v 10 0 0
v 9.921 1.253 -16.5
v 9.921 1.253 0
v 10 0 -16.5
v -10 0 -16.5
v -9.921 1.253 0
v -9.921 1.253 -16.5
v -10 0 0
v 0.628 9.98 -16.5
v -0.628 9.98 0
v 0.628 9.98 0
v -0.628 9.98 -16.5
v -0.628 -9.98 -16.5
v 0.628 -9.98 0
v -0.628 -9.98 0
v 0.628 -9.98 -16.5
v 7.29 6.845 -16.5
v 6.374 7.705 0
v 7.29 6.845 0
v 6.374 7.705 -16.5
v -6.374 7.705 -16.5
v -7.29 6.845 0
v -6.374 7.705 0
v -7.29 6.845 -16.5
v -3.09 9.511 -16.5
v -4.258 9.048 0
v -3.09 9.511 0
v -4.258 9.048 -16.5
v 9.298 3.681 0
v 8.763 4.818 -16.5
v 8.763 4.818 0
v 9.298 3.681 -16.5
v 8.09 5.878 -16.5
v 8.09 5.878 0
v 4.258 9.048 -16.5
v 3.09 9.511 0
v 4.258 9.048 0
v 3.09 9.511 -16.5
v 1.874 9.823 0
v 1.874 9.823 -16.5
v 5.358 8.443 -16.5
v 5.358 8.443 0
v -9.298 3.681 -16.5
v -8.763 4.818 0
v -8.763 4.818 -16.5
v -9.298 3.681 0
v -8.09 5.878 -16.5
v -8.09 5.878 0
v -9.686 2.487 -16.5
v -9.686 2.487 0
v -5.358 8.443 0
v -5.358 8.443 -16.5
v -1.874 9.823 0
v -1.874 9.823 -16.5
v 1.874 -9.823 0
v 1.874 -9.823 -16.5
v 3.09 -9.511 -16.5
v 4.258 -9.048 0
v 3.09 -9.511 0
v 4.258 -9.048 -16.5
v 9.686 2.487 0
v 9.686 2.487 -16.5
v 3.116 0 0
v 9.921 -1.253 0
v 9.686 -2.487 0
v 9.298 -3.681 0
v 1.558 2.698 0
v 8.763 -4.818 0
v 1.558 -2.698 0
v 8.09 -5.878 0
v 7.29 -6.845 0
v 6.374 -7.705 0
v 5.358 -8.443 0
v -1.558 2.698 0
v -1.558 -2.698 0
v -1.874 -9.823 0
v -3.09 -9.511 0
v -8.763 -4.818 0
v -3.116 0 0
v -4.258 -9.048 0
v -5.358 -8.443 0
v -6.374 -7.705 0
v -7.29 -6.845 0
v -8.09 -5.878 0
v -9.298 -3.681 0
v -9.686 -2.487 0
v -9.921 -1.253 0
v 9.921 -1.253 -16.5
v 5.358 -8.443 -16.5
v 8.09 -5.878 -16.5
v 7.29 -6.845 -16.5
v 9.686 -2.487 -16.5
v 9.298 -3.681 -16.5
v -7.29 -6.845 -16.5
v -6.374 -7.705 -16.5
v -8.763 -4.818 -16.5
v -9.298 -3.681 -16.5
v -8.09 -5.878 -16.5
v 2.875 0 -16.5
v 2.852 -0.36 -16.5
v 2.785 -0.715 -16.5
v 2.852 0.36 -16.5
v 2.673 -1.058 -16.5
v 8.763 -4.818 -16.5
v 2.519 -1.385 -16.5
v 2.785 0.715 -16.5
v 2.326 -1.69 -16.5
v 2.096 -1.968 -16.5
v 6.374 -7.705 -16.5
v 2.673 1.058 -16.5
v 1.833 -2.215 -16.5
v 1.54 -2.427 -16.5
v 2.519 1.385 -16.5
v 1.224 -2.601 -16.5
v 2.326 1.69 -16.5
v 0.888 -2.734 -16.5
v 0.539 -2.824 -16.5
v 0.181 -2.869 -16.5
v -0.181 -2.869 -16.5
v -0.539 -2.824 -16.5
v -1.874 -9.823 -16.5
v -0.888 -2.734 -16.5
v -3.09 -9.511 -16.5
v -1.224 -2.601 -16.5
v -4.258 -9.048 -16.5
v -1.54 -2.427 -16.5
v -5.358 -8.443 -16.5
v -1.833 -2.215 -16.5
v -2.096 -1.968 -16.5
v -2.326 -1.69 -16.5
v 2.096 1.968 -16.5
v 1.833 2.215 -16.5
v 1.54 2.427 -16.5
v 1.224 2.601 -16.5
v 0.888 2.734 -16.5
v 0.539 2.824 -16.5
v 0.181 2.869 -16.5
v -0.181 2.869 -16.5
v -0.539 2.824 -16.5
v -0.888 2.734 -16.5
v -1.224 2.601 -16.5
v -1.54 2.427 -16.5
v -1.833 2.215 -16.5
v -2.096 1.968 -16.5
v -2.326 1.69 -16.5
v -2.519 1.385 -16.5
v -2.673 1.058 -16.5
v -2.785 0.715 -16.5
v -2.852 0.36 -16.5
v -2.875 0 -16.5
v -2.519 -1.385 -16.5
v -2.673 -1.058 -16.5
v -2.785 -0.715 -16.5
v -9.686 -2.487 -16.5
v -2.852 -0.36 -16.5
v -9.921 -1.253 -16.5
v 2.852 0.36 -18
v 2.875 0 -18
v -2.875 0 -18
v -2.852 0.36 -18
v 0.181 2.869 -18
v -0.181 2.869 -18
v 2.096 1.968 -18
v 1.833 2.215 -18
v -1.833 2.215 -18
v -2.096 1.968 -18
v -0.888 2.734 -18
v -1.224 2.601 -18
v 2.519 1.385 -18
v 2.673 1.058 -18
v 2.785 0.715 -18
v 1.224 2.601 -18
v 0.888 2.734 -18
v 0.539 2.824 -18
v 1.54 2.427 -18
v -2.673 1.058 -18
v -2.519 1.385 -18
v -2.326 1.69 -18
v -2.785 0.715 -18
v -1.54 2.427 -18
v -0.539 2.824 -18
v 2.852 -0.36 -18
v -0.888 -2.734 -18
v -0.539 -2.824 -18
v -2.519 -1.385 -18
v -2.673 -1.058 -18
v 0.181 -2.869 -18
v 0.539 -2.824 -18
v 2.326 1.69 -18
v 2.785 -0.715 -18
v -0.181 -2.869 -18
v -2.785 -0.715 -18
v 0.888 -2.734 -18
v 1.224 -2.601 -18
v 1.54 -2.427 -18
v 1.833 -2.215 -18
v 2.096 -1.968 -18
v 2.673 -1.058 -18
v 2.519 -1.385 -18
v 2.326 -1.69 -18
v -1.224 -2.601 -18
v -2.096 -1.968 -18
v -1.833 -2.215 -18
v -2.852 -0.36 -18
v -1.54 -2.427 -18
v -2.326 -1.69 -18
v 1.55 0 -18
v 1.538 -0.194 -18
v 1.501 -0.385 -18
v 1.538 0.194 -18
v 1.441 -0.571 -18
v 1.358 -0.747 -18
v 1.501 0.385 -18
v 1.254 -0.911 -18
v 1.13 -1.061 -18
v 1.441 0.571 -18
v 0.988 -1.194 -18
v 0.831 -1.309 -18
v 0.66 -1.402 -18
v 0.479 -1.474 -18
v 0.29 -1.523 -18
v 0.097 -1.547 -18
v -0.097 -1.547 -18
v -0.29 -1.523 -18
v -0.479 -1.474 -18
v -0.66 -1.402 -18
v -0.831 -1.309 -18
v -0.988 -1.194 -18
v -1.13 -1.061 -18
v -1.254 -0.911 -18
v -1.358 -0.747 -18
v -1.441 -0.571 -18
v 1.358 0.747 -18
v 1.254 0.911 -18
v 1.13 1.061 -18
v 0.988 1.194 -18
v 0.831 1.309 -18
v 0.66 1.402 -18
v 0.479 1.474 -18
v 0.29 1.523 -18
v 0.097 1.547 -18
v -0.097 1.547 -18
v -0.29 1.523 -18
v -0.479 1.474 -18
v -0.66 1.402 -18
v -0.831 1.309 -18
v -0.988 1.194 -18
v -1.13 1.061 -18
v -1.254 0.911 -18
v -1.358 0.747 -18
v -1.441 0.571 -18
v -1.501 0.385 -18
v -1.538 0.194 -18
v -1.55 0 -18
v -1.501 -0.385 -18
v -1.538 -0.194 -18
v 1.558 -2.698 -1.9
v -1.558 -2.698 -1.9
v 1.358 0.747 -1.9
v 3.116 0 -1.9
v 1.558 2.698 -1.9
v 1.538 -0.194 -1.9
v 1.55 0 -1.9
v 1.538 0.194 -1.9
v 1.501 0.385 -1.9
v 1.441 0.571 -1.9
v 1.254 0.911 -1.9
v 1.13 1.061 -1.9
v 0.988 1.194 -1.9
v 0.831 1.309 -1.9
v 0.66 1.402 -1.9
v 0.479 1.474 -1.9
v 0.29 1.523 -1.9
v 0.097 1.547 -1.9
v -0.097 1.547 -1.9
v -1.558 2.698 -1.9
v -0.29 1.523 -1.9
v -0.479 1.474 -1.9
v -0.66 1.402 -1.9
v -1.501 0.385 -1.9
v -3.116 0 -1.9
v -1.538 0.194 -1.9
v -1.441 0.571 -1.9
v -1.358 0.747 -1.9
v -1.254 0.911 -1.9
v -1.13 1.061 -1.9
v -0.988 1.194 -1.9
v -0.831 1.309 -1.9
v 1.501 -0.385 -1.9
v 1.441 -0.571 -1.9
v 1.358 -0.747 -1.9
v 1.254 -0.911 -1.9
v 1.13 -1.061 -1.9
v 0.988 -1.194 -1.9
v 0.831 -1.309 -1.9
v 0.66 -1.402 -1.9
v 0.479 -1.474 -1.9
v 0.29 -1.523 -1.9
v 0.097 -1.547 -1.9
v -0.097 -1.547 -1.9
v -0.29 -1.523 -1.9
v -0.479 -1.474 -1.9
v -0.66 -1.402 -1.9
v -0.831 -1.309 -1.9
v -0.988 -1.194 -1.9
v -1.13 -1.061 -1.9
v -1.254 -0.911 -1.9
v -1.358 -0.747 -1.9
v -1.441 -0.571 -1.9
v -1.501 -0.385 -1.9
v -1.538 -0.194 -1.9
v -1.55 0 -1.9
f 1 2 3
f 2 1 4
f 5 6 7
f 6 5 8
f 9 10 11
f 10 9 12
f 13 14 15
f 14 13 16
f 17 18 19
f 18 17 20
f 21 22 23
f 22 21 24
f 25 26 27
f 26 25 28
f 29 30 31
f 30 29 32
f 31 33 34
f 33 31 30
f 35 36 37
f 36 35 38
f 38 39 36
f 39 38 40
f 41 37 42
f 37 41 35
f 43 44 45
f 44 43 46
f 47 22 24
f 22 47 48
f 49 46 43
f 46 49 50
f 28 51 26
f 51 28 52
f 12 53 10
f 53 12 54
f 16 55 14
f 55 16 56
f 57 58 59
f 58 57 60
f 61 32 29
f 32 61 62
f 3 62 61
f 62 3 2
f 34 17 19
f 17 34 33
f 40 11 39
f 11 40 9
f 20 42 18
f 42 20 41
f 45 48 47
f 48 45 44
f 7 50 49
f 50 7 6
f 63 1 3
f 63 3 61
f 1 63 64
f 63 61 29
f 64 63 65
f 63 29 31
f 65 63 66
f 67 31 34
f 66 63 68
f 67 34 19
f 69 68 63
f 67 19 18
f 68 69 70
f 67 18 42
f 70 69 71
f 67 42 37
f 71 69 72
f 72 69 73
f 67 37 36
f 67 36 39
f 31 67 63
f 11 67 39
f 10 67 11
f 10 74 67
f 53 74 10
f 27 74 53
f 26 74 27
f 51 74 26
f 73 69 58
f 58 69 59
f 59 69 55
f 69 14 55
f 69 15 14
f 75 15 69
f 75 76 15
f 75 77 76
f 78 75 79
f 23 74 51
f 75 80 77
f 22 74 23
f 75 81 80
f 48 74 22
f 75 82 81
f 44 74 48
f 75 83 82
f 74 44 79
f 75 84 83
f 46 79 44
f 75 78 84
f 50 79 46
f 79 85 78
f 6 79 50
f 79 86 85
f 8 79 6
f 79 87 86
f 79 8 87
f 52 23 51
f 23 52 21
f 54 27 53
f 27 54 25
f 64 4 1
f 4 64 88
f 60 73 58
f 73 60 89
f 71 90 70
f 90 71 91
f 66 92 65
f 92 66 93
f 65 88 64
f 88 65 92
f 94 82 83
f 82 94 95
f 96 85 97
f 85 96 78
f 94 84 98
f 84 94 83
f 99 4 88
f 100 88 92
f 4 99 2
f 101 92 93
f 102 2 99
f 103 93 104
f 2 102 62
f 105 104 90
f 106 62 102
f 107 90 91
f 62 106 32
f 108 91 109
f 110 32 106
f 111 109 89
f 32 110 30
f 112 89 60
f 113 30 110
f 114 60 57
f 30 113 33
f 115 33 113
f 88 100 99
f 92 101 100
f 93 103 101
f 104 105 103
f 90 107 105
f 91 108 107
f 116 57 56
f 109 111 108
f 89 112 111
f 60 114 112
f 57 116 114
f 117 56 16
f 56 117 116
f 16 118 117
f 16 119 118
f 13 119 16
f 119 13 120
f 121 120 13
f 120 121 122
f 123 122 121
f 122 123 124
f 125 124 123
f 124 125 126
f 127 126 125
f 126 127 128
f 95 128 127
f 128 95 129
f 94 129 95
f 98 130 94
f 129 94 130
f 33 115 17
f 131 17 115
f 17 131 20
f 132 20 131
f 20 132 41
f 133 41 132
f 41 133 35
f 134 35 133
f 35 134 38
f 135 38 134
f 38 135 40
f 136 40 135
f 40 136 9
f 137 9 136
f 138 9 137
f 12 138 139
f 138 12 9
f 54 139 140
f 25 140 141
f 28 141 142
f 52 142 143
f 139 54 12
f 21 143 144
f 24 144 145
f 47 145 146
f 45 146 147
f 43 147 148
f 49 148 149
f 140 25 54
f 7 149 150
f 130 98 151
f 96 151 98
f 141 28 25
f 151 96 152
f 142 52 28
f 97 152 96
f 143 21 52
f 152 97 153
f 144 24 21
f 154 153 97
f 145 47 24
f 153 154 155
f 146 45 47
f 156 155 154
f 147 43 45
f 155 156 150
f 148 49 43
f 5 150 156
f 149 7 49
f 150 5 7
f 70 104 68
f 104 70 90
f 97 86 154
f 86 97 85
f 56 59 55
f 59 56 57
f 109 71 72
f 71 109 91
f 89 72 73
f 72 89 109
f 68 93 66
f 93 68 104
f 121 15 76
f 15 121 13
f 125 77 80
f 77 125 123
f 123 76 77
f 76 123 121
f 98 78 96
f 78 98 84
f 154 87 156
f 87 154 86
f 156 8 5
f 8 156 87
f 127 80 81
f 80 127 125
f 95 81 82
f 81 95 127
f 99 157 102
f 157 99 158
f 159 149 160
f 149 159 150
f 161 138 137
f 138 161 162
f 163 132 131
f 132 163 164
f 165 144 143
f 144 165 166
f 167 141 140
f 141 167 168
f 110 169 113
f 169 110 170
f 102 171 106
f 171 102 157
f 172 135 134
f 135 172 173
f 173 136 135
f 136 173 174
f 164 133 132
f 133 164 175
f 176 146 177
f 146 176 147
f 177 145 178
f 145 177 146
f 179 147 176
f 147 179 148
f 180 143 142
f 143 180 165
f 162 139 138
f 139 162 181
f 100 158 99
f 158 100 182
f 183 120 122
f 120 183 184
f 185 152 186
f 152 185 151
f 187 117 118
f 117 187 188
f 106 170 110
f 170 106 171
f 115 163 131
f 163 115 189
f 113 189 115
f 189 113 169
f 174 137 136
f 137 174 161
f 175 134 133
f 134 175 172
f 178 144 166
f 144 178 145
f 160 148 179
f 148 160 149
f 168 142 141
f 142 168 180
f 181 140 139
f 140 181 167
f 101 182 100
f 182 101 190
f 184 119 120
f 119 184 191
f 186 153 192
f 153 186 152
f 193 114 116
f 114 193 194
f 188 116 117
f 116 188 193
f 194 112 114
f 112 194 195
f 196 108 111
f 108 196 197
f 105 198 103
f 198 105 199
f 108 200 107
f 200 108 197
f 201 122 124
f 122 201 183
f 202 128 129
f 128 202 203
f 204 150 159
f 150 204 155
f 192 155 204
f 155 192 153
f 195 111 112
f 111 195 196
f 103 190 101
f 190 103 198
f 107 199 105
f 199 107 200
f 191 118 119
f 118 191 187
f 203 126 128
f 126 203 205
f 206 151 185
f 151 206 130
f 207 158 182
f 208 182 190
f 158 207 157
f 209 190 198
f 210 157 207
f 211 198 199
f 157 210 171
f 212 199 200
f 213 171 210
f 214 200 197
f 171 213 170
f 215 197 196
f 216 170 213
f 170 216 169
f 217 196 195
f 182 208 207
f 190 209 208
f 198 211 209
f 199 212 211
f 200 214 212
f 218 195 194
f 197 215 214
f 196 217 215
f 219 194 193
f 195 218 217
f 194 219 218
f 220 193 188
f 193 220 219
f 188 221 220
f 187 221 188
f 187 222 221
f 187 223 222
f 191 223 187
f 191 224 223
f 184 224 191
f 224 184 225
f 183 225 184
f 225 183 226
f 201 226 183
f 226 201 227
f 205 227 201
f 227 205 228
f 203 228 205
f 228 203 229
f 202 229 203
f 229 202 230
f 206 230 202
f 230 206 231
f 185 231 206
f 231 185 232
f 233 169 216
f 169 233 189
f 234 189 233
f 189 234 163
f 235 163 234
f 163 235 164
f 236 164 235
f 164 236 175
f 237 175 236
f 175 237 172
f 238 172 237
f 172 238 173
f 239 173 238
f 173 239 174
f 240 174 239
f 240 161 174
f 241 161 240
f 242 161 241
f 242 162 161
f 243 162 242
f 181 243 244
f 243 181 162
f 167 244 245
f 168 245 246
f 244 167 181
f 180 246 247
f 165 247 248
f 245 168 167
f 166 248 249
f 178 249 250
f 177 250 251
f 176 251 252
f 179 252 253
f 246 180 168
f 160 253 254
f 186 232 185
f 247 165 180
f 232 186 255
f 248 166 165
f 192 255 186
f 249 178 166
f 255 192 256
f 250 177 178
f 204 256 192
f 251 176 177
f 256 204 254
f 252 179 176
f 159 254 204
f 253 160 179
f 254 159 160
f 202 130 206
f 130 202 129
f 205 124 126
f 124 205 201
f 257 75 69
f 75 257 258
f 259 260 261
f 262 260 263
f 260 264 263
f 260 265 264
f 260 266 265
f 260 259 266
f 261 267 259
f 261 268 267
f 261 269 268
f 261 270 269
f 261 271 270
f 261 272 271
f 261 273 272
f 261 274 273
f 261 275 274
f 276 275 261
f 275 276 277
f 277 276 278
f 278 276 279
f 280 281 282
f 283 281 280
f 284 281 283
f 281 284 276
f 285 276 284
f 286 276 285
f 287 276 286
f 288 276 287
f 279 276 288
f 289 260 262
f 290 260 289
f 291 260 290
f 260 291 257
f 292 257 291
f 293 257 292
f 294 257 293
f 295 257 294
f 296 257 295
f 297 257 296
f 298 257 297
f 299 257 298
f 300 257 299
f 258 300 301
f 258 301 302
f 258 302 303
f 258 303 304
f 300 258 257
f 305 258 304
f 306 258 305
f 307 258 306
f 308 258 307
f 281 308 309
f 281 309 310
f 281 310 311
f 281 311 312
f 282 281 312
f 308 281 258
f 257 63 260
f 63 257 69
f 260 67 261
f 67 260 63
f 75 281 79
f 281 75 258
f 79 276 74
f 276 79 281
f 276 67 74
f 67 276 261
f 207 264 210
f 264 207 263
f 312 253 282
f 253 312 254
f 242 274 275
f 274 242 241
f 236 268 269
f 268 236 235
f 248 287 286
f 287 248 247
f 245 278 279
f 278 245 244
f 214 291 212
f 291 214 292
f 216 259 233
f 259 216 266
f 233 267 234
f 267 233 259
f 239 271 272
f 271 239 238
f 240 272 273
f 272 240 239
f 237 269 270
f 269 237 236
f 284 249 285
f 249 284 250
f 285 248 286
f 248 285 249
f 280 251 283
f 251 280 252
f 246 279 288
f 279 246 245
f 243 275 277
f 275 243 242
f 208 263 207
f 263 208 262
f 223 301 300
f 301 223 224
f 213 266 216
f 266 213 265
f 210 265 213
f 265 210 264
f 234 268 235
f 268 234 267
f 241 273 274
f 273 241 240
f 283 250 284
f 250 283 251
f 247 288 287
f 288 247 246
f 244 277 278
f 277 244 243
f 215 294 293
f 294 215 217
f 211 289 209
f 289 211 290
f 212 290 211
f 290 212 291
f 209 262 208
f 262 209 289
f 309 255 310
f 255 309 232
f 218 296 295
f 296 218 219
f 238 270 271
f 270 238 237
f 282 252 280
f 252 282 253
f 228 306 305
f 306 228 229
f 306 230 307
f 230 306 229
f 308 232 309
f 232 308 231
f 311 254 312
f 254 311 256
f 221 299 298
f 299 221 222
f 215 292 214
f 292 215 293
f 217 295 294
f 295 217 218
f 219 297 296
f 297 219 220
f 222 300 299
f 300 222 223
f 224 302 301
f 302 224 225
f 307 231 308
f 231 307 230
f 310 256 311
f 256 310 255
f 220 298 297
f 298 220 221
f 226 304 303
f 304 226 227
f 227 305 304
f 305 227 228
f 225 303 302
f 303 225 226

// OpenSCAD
$fn = 50;


difference() {
	union() {
		translate(v = [0, 0, -16.5000000000]) {
			cylinder(h = 16.5000000000, r = 10.0000000000);
		}
		#translate(v = [0, 0, -18.0000000000]) {
			cylinder(h = 18, r = 2.8750000000);
		}
	}
	union() {
		translate(v = [0, 0, 0]) {
			rotate(a = [0, 0, 0]) {
				difference() {
					union() {
						translate(v = [0, 0, -1.9000000000]) {
							linear_extrude(height = 1.9000000000) {
								polygon(points = [[3.1158000000, 0.0000000000], [1.5579000000, 2.6983619531], [-1.5579000000, 2.6983619531], [-3.1158000000, 0.0000000000], [-1.5579000000, -2.6983619531], [1.5579000000, -2.6983619531]]);
							}
						}
					}
					union();
				}
			}
		}
		#translate(v = [0, 0, -100.0000000000]) {
			cylinder(h = 200, r = 1.5500000000);
		}
	}
}
